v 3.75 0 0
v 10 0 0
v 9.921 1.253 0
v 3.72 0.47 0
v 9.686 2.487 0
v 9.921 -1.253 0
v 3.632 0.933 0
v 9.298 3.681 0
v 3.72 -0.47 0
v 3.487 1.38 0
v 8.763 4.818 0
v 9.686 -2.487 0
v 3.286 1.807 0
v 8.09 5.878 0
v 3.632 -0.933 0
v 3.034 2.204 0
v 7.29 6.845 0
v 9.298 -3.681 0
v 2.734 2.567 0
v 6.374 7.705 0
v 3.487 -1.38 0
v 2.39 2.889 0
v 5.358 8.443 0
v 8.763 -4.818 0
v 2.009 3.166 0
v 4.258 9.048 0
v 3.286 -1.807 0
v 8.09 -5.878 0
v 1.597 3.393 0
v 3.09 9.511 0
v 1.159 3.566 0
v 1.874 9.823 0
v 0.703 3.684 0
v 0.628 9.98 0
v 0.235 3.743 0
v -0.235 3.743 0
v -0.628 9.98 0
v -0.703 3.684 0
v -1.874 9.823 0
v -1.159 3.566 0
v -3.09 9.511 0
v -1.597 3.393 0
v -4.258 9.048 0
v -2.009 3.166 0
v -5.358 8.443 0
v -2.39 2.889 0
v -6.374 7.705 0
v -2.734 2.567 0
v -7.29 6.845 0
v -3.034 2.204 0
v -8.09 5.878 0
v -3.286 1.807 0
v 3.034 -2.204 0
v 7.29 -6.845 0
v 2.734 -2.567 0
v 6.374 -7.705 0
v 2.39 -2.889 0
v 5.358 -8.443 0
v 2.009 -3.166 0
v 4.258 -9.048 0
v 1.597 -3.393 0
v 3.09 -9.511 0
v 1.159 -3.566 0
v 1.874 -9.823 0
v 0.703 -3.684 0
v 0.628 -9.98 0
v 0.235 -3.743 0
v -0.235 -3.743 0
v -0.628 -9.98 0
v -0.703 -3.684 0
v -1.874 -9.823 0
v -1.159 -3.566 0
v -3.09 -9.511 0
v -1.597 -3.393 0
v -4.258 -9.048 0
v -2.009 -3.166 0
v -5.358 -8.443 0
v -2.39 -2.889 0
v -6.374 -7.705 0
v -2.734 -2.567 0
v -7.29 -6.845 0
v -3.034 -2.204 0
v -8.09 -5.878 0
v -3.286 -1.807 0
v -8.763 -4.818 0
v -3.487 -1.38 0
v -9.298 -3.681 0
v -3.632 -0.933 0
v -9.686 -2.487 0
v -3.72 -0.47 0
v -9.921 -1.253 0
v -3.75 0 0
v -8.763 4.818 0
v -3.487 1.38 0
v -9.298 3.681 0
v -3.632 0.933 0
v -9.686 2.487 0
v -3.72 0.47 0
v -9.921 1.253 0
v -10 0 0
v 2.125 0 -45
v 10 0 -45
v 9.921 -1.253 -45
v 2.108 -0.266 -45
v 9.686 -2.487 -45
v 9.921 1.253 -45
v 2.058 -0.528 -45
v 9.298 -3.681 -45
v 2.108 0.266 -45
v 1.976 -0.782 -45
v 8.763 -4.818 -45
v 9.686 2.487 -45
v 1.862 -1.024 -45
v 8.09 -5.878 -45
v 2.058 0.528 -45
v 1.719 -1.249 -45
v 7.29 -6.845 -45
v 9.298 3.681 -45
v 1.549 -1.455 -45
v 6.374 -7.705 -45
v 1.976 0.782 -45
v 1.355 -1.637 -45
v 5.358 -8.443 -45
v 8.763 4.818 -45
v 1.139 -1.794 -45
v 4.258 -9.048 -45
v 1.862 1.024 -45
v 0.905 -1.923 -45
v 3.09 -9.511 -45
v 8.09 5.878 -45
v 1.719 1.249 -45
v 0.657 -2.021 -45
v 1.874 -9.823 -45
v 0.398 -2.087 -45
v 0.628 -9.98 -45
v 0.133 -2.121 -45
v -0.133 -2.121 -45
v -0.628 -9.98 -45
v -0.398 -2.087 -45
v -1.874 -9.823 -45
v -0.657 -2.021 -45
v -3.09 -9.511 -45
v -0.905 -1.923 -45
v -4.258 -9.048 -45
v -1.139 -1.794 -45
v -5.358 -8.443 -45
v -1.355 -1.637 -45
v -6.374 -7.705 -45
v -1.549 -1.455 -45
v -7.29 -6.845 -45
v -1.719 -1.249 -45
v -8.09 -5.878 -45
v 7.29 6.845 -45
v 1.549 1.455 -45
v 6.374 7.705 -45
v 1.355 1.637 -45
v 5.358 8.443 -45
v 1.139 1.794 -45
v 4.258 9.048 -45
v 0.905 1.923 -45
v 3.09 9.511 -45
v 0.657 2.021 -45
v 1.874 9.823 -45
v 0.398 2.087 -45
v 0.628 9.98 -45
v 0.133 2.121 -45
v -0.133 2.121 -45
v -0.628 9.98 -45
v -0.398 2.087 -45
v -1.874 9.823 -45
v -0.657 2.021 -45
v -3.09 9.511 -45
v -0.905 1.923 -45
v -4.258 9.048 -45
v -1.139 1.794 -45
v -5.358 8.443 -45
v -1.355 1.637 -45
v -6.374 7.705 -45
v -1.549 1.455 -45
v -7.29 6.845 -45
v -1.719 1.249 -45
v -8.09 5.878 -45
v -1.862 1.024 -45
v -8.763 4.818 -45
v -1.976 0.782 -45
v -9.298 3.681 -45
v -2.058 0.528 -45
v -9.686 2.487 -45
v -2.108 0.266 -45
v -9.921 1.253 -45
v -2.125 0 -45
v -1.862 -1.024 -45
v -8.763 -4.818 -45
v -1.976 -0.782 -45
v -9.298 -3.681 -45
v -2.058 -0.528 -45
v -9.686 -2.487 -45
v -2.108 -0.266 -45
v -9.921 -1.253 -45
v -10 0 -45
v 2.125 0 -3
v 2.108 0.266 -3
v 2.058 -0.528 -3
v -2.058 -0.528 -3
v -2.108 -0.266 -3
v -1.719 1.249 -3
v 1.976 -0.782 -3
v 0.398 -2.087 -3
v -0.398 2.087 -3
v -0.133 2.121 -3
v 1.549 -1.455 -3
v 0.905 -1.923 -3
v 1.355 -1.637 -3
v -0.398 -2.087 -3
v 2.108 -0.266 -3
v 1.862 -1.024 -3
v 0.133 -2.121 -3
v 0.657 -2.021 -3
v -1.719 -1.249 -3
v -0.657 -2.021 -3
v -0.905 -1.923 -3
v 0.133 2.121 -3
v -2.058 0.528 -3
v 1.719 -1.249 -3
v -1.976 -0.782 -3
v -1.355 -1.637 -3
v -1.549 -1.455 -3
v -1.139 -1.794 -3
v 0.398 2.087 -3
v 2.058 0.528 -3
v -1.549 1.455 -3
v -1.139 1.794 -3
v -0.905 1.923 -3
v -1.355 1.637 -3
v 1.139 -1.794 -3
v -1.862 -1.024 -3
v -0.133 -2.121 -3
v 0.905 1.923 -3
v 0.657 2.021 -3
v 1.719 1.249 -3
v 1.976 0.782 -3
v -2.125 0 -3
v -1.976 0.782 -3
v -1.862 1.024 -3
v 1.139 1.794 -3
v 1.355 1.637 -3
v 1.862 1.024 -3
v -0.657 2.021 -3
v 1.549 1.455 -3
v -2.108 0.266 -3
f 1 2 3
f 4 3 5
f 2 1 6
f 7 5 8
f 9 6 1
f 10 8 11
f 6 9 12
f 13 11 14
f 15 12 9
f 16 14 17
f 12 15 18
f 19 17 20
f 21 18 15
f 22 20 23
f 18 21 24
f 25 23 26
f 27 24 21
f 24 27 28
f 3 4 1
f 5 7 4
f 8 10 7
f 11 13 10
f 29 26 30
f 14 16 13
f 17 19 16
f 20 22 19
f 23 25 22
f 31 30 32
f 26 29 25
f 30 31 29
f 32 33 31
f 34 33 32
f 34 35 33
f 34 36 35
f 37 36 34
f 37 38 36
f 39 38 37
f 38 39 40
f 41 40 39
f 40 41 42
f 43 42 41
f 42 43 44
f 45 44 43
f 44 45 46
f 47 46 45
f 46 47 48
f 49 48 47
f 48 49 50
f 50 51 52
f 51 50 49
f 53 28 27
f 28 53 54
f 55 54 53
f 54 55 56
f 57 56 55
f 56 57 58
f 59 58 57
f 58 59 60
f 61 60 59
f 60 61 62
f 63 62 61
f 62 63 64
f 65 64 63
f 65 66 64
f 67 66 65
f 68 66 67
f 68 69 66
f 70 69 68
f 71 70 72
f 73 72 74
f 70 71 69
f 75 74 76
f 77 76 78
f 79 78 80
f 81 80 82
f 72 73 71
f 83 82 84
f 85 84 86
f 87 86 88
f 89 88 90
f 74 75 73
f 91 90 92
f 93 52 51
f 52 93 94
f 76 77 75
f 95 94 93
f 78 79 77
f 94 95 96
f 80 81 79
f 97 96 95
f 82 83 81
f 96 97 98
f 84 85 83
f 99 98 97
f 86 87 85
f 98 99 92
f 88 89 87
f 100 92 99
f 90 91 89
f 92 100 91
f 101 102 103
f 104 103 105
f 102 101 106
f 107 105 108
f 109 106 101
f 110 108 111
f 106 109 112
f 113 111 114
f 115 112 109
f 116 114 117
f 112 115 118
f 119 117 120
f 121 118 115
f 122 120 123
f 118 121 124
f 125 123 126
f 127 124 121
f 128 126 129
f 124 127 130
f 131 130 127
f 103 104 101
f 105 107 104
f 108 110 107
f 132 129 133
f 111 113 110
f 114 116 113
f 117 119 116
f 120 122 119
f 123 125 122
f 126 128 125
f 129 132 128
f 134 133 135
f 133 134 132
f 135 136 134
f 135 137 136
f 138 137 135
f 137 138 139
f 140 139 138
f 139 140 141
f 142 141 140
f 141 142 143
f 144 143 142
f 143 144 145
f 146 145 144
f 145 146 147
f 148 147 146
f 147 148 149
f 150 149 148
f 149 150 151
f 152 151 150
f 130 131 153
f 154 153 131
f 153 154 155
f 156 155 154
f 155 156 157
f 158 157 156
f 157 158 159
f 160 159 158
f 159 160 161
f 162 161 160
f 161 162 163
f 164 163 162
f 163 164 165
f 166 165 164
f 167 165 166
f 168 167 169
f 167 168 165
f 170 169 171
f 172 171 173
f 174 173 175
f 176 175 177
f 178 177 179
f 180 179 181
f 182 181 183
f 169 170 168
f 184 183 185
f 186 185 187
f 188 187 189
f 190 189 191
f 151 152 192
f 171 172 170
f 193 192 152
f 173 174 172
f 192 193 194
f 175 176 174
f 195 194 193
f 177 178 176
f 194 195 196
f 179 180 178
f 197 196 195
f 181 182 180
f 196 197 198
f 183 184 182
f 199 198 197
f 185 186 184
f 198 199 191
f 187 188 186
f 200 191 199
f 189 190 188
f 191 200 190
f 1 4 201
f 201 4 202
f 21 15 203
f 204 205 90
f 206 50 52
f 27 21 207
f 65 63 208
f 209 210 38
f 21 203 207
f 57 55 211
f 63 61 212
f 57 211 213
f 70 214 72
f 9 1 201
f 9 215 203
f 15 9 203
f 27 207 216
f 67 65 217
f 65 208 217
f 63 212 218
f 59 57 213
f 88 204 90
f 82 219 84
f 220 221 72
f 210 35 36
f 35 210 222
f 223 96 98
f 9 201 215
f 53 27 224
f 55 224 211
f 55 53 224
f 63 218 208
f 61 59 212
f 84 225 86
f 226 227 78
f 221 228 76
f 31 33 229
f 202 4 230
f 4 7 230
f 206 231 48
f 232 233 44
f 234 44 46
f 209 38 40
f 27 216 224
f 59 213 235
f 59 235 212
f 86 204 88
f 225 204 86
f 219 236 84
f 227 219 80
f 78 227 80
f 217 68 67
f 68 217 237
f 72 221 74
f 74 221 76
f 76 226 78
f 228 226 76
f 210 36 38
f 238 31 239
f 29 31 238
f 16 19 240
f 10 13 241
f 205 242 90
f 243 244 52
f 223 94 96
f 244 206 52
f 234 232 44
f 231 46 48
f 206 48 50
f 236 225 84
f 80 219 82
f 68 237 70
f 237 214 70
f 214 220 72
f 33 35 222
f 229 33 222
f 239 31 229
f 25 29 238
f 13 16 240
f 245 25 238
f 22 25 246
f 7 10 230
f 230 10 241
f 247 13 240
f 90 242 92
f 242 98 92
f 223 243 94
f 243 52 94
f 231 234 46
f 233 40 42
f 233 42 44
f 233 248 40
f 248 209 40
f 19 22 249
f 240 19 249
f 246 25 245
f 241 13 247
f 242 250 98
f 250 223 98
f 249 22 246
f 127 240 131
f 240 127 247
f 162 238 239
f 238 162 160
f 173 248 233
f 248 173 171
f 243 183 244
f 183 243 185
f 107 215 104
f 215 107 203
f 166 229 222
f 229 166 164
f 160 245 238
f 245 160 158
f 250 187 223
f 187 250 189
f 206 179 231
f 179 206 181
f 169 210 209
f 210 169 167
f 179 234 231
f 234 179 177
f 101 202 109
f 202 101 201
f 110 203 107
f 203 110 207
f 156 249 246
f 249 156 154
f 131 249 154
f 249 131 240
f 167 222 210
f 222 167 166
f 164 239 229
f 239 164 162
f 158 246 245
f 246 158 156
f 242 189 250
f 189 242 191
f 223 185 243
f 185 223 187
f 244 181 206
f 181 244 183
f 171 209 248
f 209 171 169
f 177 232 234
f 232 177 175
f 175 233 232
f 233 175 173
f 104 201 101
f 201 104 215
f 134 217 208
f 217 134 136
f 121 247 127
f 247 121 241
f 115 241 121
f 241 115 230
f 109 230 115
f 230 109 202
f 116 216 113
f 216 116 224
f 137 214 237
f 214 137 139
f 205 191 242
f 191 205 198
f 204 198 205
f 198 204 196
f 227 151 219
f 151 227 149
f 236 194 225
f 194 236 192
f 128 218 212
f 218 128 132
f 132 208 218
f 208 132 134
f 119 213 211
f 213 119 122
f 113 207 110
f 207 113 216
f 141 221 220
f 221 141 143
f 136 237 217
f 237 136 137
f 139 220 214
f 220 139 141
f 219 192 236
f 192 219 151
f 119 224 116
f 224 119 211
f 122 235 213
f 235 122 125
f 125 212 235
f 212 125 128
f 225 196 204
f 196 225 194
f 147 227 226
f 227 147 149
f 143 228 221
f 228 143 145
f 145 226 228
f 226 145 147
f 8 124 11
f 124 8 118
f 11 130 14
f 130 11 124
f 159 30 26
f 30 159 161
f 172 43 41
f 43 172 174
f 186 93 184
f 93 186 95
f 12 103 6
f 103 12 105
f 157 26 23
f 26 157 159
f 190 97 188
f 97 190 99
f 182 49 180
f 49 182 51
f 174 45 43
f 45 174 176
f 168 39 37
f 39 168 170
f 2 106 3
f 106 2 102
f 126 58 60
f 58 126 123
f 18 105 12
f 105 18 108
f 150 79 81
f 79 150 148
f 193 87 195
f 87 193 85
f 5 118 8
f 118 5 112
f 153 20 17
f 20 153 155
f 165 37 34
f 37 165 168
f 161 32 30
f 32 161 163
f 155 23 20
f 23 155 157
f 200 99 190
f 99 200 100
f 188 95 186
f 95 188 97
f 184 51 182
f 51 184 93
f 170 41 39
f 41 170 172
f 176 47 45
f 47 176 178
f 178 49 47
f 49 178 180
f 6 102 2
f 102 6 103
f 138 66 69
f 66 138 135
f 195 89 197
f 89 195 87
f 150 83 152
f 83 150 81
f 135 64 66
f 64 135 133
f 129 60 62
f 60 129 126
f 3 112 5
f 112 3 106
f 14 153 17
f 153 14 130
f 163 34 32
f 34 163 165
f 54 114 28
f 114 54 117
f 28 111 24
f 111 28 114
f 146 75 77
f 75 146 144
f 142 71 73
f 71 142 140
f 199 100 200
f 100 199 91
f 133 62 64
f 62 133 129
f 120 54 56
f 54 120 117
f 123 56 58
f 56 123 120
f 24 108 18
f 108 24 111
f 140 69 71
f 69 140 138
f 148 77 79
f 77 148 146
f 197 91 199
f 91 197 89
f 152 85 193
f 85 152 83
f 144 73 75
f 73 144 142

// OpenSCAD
$fn = 50;


difference() {
	union() {
		translate(v = [0, 0, -45.0000000000]) {
			cylinder(h = 45, r = 10.0000000000);
		}
		cylinder(h = 0, r = 19.0000000000);
	}
	union() {
		translate(v = [0, 0, 0]) {
			rotate(a = [0, 0, 0]) {
				difference() {
					union() {
						#translate(v = [0, 0, -45.0000000000]) {
							cylinder(h = 45, r = 2.0000000000);
						}
						#translate(v = [0, 0, -3]) {
							cylinder(h = 3, r = 10.0000000000, r1 = 2.1250000000, r2 = 3.7500000000);
						}
						#translate(v = [0, 0, -45.0000000000]) {
							cylinder(h = 45, r = 2.1250000000);
						}
						#translate(v = [0, 0, -45.0000000000]) {
							cylinder(h = 45, r = 2.0000000000);
						}
					}
					union();
				}
			}
		}
	}
}
